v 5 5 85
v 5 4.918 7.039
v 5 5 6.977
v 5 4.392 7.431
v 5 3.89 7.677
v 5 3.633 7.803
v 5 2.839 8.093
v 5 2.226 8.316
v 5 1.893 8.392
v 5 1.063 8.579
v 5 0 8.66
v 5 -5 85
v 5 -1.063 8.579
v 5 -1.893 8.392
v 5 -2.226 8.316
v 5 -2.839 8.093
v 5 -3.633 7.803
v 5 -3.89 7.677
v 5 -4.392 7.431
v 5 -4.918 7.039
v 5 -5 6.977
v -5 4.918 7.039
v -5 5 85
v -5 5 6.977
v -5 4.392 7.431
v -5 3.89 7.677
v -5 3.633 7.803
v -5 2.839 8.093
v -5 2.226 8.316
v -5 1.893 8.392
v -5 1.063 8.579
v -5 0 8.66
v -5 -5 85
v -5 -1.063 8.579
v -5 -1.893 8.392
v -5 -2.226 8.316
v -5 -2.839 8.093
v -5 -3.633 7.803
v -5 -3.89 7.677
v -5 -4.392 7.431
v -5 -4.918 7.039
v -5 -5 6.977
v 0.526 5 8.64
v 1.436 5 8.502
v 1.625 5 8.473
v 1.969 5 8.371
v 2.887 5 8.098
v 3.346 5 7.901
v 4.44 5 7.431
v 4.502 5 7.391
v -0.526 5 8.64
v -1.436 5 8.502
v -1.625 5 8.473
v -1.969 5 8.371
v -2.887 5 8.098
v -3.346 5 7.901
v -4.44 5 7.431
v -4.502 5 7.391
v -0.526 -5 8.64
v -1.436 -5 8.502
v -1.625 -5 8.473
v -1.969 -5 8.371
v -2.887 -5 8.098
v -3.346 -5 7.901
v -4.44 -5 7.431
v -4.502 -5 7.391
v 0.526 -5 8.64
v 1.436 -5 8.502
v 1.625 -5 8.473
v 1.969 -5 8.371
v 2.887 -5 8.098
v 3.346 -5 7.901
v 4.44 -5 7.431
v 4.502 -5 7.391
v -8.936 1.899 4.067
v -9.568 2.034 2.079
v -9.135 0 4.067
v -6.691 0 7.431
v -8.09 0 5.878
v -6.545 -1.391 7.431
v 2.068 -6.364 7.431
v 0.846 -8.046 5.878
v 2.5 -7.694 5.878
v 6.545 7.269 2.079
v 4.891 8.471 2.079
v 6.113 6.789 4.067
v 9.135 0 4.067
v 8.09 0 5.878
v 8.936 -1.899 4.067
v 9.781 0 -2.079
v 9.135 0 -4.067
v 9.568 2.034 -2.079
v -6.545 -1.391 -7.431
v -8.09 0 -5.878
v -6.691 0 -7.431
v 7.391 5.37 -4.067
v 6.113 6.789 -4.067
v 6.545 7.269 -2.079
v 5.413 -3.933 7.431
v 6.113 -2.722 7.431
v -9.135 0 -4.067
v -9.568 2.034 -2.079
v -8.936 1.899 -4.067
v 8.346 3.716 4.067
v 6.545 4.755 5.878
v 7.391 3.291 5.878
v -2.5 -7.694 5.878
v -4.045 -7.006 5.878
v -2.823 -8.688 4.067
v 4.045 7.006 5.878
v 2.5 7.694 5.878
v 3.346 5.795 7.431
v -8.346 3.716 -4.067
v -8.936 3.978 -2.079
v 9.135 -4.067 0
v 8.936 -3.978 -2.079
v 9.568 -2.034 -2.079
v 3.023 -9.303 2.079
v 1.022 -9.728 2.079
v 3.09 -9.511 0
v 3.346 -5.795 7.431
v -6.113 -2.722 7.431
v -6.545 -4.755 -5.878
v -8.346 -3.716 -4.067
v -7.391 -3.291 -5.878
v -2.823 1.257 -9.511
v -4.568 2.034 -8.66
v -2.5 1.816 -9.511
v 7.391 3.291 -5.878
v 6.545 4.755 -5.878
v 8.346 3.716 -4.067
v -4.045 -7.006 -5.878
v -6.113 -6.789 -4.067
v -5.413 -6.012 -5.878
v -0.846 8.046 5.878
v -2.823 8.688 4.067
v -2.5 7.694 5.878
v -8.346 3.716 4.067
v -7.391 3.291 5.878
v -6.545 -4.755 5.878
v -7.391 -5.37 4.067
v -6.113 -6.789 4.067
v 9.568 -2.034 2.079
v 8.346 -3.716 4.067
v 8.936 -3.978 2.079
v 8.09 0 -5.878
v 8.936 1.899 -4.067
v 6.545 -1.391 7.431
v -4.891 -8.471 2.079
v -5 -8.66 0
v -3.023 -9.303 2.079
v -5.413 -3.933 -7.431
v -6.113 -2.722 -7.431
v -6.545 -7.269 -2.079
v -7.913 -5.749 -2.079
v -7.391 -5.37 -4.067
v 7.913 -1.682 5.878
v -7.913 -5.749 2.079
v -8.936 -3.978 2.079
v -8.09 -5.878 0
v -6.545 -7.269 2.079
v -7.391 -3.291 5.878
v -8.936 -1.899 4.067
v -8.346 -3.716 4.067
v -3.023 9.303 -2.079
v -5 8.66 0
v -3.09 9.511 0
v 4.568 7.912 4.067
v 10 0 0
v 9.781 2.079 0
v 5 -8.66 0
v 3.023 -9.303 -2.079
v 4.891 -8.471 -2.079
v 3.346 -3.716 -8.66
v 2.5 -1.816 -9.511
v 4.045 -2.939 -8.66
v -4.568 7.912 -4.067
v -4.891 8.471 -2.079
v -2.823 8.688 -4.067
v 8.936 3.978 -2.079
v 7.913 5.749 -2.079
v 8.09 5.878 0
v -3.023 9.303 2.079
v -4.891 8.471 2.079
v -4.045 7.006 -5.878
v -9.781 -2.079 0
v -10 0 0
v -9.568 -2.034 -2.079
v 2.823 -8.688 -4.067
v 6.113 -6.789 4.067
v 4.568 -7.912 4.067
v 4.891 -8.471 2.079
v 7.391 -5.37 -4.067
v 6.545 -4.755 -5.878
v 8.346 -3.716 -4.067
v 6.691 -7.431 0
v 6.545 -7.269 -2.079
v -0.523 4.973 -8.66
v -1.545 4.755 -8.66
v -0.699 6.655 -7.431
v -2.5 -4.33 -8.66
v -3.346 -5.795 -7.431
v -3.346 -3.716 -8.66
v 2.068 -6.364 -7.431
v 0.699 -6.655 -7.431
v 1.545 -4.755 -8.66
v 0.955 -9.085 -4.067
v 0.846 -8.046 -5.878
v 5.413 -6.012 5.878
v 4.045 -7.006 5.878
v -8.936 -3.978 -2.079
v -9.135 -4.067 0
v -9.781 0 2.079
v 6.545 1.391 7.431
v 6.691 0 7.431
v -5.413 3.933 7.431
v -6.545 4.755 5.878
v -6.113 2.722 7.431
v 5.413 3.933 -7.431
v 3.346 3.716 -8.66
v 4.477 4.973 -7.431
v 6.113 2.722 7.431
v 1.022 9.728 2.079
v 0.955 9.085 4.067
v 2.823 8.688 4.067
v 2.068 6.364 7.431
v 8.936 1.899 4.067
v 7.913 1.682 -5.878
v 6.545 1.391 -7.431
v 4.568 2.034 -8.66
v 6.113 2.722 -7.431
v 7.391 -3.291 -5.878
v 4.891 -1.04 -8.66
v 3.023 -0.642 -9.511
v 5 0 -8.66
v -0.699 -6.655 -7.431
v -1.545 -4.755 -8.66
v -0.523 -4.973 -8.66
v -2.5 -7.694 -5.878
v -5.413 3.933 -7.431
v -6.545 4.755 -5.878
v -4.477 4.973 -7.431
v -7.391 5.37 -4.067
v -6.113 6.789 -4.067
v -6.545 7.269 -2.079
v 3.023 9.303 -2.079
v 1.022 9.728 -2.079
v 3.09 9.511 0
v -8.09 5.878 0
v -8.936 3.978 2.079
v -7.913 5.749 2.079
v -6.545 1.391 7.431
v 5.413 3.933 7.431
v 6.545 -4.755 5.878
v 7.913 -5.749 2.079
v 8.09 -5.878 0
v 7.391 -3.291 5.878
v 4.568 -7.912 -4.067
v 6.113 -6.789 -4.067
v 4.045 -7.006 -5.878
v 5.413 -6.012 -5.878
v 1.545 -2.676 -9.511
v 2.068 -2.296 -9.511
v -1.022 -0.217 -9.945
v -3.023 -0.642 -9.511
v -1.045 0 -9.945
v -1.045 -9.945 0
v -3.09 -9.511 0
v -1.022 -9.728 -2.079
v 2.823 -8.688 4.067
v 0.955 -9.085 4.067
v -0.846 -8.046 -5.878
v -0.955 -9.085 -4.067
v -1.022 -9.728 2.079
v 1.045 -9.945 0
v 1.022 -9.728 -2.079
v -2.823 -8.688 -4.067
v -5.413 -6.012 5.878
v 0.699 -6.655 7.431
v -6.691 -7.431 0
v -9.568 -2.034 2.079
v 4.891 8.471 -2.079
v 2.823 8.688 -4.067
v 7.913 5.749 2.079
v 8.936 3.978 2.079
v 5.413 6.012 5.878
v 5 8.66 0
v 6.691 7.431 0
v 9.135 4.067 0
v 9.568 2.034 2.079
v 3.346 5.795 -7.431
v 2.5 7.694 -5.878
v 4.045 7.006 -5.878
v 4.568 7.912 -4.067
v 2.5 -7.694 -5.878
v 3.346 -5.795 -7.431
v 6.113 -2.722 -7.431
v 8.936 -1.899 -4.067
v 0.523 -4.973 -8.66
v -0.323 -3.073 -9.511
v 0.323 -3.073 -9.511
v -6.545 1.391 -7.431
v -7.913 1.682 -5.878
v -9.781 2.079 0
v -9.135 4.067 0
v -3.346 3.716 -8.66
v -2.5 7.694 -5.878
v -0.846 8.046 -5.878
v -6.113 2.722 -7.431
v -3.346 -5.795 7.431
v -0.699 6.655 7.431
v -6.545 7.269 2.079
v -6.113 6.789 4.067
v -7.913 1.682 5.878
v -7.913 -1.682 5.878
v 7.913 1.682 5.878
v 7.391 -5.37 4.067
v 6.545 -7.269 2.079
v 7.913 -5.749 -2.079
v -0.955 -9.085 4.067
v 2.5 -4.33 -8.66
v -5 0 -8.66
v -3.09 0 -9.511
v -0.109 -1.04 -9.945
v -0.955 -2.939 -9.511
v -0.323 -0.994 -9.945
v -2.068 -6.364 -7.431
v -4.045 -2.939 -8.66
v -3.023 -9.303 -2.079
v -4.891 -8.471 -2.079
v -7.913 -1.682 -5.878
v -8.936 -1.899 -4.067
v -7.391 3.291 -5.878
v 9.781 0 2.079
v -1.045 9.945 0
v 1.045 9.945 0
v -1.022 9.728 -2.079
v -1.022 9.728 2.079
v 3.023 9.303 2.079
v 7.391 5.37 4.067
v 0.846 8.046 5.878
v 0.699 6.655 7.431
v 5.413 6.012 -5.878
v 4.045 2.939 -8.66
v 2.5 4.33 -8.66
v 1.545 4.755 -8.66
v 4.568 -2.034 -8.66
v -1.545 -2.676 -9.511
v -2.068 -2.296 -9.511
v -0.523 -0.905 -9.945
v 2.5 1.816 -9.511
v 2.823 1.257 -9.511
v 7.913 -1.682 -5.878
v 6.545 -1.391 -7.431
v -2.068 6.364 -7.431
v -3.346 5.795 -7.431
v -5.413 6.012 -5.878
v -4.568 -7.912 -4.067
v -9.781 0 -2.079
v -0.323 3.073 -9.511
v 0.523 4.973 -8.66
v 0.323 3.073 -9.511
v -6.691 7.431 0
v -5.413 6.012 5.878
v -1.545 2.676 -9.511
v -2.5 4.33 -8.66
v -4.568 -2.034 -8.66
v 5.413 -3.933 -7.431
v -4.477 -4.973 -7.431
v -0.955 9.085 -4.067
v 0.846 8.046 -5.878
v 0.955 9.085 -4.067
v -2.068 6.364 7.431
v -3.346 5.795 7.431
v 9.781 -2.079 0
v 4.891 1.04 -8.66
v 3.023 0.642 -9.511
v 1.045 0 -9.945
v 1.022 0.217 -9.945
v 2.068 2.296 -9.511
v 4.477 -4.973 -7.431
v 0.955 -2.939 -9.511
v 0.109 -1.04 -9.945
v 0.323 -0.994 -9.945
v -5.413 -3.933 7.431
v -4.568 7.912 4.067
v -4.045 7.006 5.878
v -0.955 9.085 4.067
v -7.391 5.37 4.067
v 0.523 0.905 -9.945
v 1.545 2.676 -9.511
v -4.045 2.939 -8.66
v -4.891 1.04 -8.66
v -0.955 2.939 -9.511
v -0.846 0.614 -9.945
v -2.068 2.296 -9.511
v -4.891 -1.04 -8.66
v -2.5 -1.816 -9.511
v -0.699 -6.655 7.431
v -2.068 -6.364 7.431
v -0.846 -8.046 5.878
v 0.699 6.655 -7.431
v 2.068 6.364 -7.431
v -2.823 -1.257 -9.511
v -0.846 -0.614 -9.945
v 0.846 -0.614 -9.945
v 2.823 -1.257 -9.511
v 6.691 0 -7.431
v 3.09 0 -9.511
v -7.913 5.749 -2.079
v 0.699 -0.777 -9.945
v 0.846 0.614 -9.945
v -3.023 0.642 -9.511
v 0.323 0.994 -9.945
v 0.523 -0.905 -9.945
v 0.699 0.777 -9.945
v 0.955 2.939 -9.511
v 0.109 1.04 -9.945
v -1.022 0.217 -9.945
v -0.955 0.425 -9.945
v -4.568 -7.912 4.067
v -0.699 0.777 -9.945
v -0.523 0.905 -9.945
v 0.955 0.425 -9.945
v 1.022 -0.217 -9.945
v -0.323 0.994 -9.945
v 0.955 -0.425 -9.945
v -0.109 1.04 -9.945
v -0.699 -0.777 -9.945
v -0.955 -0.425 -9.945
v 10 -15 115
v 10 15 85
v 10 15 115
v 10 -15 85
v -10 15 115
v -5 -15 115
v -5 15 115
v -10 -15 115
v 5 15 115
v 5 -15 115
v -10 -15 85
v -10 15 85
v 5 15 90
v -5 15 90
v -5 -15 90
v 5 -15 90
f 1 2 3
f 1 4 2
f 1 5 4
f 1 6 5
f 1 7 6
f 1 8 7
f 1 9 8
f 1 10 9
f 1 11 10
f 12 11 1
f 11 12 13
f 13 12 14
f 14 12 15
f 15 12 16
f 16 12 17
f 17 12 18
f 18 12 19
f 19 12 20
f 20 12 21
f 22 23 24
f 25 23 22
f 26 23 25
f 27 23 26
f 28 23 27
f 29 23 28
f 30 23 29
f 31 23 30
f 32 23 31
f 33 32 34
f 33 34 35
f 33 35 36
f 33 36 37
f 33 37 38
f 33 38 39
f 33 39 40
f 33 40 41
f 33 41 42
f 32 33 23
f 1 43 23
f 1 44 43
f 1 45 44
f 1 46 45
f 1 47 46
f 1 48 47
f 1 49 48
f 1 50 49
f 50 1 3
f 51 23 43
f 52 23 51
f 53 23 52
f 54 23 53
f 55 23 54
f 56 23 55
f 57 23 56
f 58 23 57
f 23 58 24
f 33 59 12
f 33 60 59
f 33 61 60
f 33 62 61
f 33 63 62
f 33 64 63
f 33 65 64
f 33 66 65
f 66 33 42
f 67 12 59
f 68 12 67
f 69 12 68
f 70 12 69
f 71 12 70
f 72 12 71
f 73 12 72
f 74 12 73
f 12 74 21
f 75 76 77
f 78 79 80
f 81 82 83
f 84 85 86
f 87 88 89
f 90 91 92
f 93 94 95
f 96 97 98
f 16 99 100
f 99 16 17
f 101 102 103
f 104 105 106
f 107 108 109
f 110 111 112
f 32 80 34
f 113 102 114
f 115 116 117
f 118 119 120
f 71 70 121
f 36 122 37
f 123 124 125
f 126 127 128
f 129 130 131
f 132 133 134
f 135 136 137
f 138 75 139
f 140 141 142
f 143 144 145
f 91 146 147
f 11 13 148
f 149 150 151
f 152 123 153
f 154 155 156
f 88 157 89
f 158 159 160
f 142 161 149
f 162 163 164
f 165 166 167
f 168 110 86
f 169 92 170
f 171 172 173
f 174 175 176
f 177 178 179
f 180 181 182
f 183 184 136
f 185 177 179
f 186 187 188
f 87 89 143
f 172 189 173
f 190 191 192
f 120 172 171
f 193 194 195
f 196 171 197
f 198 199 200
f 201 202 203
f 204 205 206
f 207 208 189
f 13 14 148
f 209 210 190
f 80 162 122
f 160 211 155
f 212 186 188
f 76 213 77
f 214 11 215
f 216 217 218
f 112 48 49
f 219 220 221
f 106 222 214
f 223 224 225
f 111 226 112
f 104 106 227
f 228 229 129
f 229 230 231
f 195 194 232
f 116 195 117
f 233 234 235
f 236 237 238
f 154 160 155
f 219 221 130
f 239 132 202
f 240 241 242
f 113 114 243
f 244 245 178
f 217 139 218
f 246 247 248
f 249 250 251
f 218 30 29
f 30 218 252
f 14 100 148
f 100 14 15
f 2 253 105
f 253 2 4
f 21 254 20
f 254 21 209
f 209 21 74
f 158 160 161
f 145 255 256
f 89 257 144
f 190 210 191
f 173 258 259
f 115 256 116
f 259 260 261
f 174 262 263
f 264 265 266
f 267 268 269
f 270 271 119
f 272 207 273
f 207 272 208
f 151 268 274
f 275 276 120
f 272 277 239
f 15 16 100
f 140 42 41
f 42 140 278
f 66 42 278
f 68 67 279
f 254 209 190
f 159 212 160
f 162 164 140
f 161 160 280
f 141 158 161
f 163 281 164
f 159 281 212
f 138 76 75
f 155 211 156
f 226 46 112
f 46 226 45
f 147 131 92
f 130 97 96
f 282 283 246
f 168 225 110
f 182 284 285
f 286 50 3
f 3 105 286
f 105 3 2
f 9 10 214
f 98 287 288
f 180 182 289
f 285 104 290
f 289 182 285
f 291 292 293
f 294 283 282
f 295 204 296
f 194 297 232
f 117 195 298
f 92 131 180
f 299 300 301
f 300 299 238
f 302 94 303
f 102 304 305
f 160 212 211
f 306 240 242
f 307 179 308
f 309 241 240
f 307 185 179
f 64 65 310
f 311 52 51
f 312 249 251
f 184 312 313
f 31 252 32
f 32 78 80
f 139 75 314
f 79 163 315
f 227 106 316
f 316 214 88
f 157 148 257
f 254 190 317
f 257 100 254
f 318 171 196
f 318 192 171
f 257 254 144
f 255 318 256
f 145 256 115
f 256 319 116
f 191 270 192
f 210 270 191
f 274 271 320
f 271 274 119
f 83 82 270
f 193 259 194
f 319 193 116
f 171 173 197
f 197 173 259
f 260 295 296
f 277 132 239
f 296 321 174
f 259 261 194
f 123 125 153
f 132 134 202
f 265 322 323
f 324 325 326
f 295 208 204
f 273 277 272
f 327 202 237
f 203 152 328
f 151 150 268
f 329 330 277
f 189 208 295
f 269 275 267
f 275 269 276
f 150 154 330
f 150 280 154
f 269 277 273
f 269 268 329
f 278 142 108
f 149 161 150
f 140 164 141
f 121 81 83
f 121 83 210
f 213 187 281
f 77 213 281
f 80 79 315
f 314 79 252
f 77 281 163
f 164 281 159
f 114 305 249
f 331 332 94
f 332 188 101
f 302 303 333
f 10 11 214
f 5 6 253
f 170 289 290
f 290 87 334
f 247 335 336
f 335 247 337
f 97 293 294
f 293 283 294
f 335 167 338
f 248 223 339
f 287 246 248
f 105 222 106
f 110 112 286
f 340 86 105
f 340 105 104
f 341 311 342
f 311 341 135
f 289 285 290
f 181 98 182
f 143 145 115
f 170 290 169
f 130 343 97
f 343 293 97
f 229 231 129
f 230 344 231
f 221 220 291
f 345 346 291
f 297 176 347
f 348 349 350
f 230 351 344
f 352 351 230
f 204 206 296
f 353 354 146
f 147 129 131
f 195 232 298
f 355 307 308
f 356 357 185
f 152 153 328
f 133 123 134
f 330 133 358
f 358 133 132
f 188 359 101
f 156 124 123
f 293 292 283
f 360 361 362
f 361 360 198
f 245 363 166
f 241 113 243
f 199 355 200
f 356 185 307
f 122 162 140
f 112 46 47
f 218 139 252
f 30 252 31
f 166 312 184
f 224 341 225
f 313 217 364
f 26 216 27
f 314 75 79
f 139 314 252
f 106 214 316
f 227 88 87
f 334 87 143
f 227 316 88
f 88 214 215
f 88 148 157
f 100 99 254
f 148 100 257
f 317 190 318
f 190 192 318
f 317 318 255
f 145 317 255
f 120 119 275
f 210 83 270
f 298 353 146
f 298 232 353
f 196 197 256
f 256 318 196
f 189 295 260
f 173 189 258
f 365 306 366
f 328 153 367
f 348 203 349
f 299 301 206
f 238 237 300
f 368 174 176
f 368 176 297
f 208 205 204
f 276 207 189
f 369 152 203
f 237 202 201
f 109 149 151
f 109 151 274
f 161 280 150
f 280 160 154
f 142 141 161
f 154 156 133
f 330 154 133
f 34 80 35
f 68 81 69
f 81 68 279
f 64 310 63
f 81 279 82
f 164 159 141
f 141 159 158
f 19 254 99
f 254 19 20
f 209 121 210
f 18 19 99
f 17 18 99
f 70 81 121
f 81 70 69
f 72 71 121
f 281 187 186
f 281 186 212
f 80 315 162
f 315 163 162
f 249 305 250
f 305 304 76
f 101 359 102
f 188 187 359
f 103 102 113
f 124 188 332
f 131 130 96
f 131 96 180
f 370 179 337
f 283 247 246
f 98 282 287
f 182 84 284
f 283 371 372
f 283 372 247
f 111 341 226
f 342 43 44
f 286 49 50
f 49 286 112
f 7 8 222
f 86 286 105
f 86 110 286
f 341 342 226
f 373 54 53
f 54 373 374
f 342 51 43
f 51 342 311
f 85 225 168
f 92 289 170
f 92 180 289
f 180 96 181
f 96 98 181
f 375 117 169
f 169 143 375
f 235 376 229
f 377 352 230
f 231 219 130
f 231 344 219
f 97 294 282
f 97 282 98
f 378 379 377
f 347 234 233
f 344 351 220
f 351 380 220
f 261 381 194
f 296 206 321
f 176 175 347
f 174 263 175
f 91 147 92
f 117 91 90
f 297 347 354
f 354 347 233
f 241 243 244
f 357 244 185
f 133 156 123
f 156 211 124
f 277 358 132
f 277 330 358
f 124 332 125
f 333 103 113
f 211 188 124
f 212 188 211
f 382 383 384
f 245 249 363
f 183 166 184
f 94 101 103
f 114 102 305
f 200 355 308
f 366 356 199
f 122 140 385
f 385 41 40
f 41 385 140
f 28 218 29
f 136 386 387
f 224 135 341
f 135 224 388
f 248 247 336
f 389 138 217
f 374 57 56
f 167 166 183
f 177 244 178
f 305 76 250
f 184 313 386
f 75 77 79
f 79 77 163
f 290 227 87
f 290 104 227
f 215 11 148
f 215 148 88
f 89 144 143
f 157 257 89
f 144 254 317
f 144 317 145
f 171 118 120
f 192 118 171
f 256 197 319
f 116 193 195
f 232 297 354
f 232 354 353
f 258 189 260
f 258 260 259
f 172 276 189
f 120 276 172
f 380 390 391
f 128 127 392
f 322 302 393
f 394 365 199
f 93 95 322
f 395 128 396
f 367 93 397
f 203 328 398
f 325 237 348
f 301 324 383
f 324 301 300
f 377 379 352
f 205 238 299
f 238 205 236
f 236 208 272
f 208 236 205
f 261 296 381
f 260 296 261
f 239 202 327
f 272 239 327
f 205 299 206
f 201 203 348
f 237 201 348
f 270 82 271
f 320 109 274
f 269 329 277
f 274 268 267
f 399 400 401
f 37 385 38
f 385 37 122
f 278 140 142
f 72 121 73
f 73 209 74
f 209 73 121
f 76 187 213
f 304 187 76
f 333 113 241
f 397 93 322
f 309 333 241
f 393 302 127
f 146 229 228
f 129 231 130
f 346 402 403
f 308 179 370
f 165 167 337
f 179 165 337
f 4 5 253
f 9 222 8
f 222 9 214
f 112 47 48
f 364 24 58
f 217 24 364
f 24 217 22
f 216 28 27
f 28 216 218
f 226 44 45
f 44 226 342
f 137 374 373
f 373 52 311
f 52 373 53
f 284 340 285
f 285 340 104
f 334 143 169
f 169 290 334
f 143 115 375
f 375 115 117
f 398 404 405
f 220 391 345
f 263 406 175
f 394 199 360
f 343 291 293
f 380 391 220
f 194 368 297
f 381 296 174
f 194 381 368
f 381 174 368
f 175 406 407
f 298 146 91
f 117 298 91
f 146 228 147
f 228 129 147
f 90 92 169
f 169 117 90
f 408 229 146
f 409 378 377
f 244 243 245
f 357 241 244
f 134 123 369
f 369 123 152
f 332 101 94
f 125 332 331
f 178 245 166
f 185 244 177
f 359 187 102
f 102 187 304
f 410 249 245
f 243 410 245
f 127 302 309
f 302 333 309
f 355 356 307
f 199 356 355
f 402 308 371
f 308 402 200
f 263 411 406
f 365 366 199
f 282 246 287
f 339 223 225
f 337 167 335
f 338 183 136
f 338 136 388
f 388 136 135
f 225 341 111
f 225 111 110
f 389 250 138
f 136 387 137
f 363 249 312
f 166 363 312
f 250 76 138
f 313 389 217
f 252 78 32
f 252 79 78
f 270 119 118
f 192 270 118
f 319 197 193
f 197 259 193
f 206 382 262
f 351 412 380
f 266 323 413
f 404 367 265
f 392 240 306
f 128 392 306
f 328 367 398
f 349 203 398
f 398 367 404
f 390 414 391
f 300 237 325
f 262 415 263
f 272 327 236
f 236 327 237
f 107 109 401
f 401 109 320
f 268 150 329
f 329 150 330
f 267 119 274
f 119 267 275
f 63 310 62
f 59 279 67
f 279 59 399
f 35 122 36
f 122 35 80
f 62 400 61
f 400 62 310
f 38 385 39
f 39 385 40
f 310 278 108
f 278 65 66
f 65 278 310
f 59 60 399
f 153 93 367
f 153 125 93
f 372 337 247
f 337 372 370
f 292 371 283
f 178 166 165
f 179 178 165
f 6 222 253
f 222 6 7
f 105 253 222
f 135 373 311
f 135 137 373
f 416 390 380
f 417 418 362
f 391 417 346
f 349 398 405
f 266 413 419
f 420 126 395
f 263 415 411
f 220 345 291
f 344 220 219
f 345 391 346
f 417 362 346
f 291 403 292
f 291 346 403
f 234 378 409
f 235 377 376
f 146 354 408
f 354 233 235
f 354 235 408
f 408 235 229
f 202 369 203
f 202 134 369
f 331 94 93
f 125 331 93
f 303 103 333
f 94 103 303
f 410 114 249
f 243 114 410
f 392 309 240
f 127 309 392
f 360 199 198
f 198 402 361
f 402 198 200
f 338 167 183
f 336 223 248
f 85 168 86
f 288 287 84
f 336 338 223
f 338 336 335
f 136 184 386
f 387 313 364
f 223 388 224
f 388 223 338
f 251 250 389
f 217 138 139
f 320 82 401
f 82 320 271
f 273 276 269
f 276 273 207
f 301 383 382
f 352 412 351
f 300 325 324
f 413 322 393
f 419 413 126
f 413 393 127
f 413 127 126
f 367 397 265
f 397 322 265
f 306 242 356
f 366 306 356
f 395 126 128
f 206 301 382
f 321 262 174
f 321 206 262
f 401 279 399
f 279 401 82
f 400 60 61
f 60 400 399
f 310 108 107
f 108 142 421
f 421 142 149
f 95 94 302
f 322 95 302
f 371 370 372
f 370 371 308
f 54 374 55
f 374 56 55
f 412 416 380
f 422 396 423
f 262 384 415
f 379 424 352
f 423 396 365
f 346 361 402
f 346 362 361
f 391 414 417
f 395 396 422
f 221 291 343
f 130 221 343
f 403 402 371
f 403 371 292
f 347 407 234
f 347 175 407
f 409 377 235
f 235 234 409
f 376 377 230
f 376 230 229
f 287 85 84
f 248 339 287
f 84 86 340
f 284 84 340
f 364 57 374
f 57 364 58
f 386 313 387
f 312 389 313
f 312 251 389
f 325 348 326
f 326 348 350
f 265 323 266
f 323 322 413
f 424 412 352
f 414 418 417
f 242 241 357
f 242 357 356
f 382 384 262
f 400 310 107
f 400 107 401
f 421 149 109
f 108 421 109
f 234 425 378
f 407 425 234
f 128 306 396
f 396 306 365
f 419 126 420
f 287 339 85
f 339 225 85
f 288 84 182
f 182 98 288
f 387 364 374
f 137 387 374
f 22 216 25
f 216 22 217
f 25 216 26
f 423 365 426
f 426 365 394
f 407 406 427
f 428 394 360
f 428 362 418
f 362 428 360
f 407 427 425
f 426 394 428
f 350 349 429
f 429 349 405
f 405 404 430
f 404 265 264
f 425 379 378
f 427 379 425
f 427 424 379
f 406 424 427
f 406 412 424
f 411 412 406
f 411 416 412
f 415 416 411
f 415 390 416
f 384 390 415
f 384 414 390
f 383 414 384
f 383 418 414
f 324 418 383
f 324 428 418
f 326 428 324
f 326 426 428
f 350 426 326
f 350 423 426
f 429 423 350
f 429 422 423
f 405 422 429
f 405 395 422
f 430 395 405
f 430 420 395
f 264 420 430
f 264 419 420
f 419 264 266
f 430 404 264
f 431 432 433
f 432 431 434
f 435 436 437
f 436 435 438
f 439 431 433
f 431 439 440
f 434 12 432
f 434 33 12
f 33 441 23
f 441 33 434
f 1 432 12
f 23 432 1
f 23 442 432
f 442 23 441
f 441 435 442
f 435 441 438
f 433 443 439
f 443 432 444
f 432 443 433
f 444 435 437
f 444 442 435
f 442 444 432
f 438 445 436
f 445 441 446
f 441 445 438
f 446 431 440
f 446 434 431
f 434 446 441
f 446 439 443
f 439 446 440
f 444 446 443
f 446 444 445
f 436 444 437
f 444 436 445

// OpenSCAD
difference(){
    union() {
        translate([-5,-5,0]){
            cube([10,10,100]);
        }
        sphere(r=10);
        translate([0,0,100]) {
            cube([20,30,30],center=true);
        }
    }
    translate([0,0,110]){
        cube([10,40,40],center=true);
    }        
    
}
